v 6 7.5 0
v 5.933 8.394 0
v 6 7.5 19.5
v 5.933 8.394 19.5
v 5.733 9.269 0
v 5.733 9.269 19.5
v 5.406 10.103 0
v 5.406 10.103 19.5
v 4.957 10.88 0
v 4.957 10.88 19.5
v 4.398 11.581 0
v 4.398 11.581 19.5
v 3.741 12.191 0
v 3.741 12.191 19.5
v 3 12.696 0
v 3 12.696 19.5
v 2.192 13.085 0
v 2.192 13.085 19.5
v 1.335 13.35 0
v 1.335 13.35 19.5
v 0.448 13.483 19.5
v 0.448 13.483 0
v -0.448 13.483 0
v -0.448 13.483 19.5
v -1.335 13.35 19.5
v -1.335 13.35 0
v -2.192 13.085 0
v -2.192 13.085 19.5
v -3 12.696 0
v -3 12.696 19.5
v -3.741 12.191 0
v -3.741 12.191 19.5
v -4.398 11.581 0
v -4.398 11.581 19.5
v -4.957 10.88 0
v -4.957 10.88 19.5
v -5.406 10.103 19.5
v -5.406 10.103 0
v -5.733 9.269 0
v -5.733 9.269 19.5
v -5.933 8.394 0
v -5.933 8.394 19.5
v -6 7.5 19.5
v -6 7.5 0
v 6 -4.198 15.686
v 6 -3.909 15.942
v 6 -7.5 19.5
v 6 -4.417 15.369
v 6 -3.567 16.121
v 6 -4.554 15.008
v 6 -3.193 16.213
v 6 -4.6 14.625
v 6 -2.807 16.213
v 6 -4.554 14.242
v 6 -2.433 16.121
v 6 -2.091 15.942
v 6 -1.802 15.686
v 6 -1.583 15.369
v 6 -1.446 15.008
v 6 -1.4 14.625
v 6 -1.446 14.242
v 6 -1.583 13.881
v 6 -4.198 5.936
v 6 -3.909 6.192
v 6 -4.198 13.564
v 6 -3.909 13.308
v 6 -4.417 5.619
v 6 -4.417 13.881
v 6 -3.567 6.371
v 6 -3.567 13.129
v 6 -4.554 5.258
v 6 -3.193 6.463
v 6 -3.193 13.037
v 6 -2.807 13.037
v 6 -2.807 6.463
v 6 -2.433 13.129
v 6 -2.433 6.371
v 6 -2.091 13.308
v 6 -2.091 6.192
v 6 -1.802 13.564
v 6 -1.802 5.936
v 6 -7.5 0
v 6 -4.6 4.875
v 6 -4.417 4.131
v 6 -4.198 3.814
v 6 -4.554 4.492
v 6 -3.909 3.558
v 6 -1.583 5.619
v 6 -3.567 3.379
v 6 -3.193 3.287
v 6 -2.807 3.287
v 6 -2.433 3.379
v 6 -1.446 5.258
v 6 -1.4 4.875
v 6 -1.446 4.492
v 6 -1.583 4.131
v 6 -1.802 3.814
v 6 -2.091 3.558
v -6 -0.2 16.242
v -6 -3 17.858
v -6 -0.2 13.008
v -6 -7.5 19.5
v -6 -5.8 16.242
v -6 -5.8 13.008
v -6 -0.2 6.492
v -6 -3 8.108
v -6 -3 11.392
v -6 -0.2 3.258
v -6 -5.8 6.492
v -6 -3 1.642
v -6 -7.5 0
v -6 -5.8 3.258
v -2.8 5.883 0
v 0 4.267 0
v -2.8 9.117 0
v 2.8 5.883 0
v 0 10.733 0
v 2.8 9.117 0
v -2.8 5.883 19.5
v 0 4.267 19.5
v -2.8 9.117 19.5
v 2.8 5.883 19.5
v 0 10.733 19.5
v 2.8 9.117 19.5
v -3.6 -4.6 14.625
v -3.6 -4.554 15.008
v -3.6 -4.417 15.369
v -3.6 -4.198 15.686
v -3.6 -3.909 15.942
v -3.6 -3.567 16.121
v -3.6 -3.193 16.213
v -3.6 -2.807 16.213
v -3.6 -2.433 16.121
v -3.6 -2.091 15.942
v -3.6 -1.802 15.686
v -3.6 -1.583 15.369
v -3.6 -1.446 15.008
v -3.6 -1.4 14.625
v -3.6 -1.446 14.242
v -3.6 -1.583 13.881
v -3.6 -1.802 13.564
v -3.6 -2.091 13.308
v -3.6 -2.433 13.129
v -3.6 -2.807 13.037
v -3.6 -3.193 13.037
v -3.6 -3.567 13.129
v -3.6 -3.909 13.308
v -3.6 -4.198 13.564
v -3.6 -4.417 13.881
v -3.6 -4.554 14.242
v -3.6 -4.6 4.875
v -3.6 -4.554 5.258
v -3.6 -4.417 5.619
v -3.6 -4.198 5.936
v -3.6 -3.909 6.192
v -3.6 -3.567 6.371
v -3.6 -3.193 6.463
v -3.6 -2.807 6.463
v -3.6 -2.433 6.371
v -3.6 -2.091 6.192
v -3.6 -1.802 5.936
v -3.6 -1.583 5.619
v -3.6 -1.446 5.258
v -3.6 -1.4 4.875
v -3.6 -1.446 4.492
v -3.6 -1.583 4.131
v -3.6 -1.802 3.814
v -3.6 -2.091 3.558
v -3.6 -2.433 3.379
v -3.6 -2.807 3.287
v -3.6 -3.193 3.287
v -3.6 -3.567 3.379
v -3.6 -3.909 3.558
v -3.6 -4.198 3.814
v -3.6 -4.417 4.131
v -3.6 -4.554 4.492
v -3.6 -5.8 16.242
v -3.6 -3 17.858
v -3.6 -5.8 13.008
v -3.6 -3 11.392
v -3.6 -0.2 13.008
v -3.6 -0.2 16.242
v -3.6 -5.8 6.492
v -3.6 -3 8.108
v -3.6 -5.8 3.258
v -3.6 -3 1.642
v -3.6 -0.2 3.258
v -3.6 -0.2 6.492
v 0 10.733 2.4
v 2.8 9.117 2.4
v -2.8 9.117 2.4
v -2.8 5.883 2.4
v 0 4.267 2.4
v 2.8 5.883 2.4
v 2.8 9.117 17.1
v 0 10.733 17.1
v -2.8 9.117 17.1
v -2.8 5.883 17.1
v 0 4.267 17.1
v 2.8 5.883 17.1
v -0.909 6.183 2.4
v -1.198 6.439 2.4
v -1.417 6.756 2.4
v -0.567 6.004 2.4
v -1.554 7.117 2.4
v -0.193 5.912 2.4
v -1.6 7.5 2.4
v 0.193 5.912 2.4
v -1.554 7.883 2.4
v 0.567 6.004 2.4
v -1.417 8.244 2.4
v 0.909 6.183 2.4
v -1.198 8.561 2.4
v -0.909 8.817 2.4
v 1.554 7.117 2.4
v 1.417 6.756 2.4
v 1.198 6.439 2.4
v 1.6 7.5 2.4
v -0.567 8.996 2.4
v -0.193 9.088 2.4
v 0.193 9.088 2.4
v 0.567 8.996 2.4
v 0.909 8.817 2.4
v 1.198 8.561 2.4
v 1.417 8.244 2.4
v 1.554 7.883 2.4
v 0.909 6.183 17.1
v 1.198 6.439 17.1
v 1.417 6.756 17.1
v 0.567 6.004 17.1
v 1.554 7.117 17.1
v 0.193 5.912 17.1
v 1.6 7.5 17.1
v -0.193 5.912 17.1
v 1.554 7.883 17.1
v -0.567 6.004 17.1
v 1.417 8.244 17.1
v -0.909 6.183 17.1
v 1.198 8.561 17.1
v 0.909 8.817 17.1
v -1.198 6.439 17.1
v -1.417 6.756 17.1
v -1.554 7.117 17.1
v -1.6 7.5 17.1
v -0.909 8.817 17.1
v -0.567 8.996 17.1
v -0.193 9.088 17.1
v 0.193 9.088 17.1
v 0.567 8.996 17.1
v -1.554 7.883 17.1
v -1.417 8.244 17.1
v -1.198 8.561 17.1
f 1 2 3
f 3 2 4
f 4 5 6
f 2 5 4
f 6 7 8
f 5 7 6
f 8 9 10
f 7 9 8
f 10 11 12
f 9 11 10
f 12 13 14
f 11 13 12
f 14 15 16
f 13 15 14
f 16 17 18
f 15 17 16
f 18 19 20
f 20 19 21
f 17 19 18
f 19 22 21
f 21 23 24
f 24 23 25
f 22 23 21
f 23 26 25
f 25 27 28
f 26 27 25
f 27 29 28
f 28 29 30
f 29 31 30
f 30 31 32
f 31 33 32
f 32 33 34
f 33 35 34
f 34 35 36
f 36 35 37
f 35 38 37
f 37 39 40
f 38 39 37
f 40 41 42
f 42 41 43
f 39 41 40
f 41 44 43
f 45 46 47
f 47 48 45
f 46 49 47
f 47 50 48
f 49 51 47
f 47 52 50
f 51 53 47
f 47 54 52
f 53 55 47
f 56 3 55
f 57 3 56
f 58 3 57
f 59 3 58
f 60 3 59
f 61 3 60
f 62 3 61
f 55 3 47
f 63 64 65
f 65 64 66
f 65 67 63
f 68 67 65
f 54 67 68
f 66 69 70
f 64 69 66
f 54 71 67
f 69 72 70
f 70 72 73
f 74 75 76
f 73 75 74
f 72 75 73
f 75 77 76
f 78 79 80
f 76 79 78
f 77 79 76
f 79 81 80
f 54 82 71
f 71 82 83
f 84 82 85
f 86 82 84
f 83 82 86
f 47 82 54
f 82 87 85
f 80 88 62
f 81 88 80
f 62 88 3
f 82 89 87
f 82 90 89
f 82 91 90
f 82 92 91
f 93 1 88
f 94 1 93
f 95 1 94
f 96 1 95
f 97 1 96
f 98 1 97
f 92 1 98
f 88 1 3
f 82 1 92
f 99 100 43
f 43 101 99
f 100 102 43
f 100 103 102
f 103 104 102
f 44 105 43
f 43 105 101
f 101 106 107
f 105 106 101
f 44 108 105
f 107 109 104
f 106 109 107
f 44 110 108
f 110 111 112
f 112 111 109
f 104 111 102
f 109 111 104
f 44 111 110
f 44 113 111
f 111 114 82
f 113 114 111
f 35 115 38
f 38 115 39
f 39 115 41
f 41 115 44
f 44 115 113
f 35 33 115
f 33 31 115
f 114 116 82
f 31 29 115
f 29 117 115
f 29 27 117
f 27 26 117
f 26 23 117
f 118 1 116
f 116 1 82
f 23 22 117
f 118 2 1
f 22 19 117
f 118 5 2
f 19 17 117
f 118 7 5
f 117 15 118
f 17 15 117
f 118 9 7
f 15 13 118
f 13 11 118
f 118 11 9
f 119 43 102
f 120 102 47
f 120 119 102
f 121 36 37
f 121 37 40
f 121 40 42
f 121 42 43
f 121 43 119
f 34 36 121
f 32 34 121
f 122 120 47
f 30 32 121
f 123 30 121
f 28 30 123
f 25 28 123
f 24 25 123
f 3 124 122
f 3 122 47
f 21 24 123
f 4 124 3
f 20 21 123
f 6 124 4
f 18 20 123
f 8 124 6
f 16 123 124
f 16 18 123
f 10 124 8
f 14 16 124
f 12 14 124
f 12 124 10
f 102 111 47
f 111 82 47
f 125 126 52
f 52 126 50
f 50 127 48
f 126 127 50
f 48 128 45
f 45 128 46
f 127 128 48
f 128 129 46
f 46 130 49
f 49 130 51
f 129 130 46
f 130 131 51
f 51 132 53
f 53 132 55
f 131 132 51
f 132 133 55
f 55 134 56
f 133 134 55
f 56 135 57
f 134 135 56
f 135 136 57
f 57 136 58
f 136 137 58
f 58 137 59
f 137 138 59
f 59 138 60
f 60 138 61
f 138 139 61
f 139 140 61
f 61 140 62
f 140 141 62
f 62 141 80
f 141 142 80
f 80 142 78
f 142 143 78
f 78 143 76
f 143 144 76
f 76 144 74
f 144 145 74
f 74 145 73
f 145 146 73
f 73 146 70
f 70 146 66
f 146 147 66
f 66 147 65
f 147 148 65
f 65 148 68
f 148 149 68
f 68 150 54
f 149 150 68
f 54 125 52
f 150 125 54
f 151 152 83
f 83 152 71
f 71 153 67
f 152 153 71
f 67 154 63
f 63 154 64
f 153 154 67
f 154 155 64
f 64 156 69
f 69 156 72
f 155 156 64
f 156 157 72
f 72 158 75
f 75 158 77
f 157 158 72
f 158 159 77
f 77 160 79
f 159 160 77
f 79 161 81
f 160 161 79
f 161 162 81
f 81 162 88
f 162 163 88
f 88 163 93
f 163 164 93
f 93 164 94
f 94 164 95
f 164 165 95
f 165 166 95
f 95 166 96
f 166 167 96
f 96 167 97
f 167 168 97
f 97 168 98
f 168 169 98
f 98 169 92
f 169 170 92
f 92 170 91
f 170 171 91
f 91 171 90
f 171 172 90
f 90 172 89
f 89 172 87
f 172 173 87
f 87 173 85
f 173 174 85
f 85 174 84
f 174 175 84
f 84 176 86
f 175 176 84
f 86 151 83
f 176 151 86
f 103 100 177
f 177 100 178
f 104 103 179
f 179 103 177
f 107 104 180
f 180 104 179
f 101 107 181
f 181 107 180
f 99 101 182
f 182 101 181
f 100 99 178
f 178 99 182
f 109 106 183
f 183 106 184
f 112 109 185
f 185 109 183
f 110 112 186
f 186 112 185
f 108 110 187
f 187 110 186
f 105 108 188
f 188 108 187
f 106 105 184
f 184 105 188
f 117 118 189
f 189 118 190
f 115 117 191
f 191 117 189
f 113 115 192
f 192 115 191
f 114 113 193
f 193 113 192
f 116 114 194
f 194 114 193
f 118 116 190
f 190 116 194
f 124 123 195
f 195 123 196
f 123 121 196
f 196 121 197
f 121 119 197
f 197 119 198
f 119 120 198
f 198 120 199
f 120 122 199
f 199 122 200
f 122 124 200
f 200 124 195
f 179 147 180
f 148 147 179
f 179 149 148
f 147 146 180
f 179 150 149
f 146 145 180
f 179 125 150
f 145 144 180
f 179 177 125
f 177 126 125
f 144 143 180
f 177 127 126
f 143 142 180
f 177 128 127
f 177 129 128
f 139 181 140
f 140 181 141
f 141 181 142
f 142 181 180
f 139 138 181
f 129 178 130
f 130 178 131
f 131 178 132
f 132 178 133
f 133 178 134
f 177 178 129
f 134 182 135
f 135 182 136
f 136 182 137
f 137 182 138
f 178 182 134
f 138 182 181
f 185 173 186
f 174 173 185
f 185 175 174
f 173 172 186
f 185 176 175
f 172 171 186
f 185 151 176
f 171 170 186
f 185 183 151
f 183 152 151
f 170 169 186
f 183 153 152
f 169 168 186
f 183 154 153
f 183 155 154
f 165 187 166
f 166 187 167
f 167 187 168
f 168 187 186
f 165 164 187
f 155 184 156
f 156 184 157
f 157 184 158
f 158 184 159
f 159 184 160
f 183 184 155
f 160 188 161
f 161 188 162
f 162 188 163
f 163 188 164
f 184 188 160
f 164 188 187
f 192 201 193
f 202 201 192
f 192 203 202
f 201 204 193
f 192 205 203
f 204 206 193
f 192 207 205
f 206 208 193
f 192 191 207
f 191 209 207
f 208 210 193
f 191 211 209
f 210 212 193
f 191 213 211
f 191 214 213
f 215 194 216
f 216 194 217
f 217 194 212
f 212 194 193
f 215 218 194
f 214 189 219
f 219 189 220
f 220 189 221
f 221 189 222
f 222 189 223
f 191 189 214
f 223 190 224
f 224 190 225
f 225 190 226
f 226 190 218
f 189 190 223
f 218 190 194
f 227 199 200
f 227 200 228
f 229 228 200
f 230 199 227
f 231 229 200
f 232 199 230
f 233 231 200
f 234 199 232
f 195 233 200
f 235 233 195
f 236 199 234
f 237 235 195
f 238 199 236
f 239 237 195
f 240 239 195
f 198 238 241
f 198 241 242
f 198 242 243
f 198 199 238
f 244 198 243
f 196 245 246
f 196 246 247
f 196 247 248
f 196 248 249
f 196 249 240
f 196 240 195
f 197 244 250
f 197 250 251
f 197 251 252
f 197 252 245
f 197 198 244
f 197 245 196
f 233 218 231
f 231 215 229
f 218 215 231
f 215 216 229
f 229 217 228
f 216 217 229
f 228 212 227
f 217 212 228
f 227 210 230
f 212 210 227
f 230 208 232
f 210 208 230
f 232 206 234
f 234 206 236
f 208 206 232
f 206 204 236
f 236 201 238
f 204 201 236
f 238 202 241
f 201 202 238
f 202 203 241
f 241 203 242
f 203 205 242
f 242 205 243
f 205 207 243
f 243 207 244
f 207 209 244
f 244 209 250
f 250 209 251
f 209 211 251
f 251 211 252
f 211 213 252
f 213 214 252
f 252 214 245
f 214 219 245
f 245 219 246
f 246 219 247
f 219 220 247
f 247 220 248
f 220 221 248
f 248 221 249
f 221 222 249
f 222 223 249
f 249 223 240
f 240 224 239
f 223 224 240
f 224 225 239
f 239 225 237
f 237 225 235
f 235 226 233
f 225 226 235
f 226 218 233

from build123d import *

# Parameters (mm, degrees)
PAD_DEPTH       = 19.5
SKETCH001_R     = 1.6
POCKET_DEPTH    = 19.501
SKETCH002_R     = 1.6
POCKET001_DEPTH = 12.001
POCKET002_DEPTH = 2.4
POCKET003_DEPTH = 2.4
POCKET004_DEPTH = 2.4


with BuildPart() as part:
    # Sketch → Pad (new body)
    with BuildSketch(Plane.XY):
        with BuildLine():
            ThreePointArc((6, 7.5), (0, 13.5), (-6, 7.5))
            Line((-6, 7.5), (-6, -7.5))
            Line((-6, -7.5), (6, -7.5))
            Line((6, -7.5), (6, 7.5))
        make_face()
    extrude(amount=PAD_DEPTH)

    # Sketch001 (on Face5 of Pad) → Pocket (cut, through all)
    with BuildSketch(Plane(origin=(0, 0, 0), x_dir=(1, 0, 0), z_dir=(0, 0, -1))):
        with Locations((0, -7.5)):
            Circle(SKETCH001_R)
    extrude(amount=-POCKET_DEPTH, mode=Mode.SUBTRACT)

    # Sketch002 (on Face3 of Pocket) → Pocket001 (cut, through all)
    with BuildSketch(Plane(origin=(-6, 0, 0), x_dir=(0, -1, 0), z_dir=(-1, 0, 0))):
        with Locations((3, 14.625)):
            Circle(SKETCH002_R)
        with Locations((3, 4.875)):
            Circle(SKETCH002_R)
    extrude(amount=-POCKET001_DEPTH, mode=Mode.SUBTRACT)

    # Sketch003 (on Face3 of Pocket001) → Pocket002 (cut)
    with BuildSketch(Plane(origin=(-6, 0, 0), x_dir=(0, -1, 0), z_dir=(-1, 0, 0))):
        Polygon((3, 17.858162), (0.2, 16.241581), (0.2, 13.008419), (3, 11.391838), (5.8, 13.008419), (5.8, 16.241581), align=None)
        Polygon((3, 8.108162), (0.2, 6.491581), (0.2, 3.258419), (3, 1.641838), (5.8, 3.258419), (5.8, 6.491581), align=None)
    extrude(amount=-POCKET002_DEPTH, mode=Mode.SUBTRACT)

    # Sketch004 (on Face4 of Pocket002) → Pocket003 (cut)
    with BuildSketch(Plane(origin=(0, 0, 0), x_dir=(1, 0, 0), z_dir=(0, 0, -1))):
        Polygon((2.8, -9.116581), (2.8, -5.883419), (0, -4.266838), (-2.8, -5.883419), (-2.8, -9.116581), (0, -10.733162), align=None)
    extrude(amount=-POCKET003_DEPTH, mode=Mode.SUBTRACT)

    # Sketch005 (on Face5 of Pocket003) → Pocket004 (cut)
    with BuildSketch(Plane.XY.offset(19.5)):
        Polygon((2.8, 9.116581), (0, 10.733162), (-2.8, 9.116581), (-2.8, 5.883419), (0, 4.266838), (2.8, 5.883419), align=None)
    extrude(amount=-POCKET004_DEPTH, mode=Mode.SUBTRACT)


solid = part.part
